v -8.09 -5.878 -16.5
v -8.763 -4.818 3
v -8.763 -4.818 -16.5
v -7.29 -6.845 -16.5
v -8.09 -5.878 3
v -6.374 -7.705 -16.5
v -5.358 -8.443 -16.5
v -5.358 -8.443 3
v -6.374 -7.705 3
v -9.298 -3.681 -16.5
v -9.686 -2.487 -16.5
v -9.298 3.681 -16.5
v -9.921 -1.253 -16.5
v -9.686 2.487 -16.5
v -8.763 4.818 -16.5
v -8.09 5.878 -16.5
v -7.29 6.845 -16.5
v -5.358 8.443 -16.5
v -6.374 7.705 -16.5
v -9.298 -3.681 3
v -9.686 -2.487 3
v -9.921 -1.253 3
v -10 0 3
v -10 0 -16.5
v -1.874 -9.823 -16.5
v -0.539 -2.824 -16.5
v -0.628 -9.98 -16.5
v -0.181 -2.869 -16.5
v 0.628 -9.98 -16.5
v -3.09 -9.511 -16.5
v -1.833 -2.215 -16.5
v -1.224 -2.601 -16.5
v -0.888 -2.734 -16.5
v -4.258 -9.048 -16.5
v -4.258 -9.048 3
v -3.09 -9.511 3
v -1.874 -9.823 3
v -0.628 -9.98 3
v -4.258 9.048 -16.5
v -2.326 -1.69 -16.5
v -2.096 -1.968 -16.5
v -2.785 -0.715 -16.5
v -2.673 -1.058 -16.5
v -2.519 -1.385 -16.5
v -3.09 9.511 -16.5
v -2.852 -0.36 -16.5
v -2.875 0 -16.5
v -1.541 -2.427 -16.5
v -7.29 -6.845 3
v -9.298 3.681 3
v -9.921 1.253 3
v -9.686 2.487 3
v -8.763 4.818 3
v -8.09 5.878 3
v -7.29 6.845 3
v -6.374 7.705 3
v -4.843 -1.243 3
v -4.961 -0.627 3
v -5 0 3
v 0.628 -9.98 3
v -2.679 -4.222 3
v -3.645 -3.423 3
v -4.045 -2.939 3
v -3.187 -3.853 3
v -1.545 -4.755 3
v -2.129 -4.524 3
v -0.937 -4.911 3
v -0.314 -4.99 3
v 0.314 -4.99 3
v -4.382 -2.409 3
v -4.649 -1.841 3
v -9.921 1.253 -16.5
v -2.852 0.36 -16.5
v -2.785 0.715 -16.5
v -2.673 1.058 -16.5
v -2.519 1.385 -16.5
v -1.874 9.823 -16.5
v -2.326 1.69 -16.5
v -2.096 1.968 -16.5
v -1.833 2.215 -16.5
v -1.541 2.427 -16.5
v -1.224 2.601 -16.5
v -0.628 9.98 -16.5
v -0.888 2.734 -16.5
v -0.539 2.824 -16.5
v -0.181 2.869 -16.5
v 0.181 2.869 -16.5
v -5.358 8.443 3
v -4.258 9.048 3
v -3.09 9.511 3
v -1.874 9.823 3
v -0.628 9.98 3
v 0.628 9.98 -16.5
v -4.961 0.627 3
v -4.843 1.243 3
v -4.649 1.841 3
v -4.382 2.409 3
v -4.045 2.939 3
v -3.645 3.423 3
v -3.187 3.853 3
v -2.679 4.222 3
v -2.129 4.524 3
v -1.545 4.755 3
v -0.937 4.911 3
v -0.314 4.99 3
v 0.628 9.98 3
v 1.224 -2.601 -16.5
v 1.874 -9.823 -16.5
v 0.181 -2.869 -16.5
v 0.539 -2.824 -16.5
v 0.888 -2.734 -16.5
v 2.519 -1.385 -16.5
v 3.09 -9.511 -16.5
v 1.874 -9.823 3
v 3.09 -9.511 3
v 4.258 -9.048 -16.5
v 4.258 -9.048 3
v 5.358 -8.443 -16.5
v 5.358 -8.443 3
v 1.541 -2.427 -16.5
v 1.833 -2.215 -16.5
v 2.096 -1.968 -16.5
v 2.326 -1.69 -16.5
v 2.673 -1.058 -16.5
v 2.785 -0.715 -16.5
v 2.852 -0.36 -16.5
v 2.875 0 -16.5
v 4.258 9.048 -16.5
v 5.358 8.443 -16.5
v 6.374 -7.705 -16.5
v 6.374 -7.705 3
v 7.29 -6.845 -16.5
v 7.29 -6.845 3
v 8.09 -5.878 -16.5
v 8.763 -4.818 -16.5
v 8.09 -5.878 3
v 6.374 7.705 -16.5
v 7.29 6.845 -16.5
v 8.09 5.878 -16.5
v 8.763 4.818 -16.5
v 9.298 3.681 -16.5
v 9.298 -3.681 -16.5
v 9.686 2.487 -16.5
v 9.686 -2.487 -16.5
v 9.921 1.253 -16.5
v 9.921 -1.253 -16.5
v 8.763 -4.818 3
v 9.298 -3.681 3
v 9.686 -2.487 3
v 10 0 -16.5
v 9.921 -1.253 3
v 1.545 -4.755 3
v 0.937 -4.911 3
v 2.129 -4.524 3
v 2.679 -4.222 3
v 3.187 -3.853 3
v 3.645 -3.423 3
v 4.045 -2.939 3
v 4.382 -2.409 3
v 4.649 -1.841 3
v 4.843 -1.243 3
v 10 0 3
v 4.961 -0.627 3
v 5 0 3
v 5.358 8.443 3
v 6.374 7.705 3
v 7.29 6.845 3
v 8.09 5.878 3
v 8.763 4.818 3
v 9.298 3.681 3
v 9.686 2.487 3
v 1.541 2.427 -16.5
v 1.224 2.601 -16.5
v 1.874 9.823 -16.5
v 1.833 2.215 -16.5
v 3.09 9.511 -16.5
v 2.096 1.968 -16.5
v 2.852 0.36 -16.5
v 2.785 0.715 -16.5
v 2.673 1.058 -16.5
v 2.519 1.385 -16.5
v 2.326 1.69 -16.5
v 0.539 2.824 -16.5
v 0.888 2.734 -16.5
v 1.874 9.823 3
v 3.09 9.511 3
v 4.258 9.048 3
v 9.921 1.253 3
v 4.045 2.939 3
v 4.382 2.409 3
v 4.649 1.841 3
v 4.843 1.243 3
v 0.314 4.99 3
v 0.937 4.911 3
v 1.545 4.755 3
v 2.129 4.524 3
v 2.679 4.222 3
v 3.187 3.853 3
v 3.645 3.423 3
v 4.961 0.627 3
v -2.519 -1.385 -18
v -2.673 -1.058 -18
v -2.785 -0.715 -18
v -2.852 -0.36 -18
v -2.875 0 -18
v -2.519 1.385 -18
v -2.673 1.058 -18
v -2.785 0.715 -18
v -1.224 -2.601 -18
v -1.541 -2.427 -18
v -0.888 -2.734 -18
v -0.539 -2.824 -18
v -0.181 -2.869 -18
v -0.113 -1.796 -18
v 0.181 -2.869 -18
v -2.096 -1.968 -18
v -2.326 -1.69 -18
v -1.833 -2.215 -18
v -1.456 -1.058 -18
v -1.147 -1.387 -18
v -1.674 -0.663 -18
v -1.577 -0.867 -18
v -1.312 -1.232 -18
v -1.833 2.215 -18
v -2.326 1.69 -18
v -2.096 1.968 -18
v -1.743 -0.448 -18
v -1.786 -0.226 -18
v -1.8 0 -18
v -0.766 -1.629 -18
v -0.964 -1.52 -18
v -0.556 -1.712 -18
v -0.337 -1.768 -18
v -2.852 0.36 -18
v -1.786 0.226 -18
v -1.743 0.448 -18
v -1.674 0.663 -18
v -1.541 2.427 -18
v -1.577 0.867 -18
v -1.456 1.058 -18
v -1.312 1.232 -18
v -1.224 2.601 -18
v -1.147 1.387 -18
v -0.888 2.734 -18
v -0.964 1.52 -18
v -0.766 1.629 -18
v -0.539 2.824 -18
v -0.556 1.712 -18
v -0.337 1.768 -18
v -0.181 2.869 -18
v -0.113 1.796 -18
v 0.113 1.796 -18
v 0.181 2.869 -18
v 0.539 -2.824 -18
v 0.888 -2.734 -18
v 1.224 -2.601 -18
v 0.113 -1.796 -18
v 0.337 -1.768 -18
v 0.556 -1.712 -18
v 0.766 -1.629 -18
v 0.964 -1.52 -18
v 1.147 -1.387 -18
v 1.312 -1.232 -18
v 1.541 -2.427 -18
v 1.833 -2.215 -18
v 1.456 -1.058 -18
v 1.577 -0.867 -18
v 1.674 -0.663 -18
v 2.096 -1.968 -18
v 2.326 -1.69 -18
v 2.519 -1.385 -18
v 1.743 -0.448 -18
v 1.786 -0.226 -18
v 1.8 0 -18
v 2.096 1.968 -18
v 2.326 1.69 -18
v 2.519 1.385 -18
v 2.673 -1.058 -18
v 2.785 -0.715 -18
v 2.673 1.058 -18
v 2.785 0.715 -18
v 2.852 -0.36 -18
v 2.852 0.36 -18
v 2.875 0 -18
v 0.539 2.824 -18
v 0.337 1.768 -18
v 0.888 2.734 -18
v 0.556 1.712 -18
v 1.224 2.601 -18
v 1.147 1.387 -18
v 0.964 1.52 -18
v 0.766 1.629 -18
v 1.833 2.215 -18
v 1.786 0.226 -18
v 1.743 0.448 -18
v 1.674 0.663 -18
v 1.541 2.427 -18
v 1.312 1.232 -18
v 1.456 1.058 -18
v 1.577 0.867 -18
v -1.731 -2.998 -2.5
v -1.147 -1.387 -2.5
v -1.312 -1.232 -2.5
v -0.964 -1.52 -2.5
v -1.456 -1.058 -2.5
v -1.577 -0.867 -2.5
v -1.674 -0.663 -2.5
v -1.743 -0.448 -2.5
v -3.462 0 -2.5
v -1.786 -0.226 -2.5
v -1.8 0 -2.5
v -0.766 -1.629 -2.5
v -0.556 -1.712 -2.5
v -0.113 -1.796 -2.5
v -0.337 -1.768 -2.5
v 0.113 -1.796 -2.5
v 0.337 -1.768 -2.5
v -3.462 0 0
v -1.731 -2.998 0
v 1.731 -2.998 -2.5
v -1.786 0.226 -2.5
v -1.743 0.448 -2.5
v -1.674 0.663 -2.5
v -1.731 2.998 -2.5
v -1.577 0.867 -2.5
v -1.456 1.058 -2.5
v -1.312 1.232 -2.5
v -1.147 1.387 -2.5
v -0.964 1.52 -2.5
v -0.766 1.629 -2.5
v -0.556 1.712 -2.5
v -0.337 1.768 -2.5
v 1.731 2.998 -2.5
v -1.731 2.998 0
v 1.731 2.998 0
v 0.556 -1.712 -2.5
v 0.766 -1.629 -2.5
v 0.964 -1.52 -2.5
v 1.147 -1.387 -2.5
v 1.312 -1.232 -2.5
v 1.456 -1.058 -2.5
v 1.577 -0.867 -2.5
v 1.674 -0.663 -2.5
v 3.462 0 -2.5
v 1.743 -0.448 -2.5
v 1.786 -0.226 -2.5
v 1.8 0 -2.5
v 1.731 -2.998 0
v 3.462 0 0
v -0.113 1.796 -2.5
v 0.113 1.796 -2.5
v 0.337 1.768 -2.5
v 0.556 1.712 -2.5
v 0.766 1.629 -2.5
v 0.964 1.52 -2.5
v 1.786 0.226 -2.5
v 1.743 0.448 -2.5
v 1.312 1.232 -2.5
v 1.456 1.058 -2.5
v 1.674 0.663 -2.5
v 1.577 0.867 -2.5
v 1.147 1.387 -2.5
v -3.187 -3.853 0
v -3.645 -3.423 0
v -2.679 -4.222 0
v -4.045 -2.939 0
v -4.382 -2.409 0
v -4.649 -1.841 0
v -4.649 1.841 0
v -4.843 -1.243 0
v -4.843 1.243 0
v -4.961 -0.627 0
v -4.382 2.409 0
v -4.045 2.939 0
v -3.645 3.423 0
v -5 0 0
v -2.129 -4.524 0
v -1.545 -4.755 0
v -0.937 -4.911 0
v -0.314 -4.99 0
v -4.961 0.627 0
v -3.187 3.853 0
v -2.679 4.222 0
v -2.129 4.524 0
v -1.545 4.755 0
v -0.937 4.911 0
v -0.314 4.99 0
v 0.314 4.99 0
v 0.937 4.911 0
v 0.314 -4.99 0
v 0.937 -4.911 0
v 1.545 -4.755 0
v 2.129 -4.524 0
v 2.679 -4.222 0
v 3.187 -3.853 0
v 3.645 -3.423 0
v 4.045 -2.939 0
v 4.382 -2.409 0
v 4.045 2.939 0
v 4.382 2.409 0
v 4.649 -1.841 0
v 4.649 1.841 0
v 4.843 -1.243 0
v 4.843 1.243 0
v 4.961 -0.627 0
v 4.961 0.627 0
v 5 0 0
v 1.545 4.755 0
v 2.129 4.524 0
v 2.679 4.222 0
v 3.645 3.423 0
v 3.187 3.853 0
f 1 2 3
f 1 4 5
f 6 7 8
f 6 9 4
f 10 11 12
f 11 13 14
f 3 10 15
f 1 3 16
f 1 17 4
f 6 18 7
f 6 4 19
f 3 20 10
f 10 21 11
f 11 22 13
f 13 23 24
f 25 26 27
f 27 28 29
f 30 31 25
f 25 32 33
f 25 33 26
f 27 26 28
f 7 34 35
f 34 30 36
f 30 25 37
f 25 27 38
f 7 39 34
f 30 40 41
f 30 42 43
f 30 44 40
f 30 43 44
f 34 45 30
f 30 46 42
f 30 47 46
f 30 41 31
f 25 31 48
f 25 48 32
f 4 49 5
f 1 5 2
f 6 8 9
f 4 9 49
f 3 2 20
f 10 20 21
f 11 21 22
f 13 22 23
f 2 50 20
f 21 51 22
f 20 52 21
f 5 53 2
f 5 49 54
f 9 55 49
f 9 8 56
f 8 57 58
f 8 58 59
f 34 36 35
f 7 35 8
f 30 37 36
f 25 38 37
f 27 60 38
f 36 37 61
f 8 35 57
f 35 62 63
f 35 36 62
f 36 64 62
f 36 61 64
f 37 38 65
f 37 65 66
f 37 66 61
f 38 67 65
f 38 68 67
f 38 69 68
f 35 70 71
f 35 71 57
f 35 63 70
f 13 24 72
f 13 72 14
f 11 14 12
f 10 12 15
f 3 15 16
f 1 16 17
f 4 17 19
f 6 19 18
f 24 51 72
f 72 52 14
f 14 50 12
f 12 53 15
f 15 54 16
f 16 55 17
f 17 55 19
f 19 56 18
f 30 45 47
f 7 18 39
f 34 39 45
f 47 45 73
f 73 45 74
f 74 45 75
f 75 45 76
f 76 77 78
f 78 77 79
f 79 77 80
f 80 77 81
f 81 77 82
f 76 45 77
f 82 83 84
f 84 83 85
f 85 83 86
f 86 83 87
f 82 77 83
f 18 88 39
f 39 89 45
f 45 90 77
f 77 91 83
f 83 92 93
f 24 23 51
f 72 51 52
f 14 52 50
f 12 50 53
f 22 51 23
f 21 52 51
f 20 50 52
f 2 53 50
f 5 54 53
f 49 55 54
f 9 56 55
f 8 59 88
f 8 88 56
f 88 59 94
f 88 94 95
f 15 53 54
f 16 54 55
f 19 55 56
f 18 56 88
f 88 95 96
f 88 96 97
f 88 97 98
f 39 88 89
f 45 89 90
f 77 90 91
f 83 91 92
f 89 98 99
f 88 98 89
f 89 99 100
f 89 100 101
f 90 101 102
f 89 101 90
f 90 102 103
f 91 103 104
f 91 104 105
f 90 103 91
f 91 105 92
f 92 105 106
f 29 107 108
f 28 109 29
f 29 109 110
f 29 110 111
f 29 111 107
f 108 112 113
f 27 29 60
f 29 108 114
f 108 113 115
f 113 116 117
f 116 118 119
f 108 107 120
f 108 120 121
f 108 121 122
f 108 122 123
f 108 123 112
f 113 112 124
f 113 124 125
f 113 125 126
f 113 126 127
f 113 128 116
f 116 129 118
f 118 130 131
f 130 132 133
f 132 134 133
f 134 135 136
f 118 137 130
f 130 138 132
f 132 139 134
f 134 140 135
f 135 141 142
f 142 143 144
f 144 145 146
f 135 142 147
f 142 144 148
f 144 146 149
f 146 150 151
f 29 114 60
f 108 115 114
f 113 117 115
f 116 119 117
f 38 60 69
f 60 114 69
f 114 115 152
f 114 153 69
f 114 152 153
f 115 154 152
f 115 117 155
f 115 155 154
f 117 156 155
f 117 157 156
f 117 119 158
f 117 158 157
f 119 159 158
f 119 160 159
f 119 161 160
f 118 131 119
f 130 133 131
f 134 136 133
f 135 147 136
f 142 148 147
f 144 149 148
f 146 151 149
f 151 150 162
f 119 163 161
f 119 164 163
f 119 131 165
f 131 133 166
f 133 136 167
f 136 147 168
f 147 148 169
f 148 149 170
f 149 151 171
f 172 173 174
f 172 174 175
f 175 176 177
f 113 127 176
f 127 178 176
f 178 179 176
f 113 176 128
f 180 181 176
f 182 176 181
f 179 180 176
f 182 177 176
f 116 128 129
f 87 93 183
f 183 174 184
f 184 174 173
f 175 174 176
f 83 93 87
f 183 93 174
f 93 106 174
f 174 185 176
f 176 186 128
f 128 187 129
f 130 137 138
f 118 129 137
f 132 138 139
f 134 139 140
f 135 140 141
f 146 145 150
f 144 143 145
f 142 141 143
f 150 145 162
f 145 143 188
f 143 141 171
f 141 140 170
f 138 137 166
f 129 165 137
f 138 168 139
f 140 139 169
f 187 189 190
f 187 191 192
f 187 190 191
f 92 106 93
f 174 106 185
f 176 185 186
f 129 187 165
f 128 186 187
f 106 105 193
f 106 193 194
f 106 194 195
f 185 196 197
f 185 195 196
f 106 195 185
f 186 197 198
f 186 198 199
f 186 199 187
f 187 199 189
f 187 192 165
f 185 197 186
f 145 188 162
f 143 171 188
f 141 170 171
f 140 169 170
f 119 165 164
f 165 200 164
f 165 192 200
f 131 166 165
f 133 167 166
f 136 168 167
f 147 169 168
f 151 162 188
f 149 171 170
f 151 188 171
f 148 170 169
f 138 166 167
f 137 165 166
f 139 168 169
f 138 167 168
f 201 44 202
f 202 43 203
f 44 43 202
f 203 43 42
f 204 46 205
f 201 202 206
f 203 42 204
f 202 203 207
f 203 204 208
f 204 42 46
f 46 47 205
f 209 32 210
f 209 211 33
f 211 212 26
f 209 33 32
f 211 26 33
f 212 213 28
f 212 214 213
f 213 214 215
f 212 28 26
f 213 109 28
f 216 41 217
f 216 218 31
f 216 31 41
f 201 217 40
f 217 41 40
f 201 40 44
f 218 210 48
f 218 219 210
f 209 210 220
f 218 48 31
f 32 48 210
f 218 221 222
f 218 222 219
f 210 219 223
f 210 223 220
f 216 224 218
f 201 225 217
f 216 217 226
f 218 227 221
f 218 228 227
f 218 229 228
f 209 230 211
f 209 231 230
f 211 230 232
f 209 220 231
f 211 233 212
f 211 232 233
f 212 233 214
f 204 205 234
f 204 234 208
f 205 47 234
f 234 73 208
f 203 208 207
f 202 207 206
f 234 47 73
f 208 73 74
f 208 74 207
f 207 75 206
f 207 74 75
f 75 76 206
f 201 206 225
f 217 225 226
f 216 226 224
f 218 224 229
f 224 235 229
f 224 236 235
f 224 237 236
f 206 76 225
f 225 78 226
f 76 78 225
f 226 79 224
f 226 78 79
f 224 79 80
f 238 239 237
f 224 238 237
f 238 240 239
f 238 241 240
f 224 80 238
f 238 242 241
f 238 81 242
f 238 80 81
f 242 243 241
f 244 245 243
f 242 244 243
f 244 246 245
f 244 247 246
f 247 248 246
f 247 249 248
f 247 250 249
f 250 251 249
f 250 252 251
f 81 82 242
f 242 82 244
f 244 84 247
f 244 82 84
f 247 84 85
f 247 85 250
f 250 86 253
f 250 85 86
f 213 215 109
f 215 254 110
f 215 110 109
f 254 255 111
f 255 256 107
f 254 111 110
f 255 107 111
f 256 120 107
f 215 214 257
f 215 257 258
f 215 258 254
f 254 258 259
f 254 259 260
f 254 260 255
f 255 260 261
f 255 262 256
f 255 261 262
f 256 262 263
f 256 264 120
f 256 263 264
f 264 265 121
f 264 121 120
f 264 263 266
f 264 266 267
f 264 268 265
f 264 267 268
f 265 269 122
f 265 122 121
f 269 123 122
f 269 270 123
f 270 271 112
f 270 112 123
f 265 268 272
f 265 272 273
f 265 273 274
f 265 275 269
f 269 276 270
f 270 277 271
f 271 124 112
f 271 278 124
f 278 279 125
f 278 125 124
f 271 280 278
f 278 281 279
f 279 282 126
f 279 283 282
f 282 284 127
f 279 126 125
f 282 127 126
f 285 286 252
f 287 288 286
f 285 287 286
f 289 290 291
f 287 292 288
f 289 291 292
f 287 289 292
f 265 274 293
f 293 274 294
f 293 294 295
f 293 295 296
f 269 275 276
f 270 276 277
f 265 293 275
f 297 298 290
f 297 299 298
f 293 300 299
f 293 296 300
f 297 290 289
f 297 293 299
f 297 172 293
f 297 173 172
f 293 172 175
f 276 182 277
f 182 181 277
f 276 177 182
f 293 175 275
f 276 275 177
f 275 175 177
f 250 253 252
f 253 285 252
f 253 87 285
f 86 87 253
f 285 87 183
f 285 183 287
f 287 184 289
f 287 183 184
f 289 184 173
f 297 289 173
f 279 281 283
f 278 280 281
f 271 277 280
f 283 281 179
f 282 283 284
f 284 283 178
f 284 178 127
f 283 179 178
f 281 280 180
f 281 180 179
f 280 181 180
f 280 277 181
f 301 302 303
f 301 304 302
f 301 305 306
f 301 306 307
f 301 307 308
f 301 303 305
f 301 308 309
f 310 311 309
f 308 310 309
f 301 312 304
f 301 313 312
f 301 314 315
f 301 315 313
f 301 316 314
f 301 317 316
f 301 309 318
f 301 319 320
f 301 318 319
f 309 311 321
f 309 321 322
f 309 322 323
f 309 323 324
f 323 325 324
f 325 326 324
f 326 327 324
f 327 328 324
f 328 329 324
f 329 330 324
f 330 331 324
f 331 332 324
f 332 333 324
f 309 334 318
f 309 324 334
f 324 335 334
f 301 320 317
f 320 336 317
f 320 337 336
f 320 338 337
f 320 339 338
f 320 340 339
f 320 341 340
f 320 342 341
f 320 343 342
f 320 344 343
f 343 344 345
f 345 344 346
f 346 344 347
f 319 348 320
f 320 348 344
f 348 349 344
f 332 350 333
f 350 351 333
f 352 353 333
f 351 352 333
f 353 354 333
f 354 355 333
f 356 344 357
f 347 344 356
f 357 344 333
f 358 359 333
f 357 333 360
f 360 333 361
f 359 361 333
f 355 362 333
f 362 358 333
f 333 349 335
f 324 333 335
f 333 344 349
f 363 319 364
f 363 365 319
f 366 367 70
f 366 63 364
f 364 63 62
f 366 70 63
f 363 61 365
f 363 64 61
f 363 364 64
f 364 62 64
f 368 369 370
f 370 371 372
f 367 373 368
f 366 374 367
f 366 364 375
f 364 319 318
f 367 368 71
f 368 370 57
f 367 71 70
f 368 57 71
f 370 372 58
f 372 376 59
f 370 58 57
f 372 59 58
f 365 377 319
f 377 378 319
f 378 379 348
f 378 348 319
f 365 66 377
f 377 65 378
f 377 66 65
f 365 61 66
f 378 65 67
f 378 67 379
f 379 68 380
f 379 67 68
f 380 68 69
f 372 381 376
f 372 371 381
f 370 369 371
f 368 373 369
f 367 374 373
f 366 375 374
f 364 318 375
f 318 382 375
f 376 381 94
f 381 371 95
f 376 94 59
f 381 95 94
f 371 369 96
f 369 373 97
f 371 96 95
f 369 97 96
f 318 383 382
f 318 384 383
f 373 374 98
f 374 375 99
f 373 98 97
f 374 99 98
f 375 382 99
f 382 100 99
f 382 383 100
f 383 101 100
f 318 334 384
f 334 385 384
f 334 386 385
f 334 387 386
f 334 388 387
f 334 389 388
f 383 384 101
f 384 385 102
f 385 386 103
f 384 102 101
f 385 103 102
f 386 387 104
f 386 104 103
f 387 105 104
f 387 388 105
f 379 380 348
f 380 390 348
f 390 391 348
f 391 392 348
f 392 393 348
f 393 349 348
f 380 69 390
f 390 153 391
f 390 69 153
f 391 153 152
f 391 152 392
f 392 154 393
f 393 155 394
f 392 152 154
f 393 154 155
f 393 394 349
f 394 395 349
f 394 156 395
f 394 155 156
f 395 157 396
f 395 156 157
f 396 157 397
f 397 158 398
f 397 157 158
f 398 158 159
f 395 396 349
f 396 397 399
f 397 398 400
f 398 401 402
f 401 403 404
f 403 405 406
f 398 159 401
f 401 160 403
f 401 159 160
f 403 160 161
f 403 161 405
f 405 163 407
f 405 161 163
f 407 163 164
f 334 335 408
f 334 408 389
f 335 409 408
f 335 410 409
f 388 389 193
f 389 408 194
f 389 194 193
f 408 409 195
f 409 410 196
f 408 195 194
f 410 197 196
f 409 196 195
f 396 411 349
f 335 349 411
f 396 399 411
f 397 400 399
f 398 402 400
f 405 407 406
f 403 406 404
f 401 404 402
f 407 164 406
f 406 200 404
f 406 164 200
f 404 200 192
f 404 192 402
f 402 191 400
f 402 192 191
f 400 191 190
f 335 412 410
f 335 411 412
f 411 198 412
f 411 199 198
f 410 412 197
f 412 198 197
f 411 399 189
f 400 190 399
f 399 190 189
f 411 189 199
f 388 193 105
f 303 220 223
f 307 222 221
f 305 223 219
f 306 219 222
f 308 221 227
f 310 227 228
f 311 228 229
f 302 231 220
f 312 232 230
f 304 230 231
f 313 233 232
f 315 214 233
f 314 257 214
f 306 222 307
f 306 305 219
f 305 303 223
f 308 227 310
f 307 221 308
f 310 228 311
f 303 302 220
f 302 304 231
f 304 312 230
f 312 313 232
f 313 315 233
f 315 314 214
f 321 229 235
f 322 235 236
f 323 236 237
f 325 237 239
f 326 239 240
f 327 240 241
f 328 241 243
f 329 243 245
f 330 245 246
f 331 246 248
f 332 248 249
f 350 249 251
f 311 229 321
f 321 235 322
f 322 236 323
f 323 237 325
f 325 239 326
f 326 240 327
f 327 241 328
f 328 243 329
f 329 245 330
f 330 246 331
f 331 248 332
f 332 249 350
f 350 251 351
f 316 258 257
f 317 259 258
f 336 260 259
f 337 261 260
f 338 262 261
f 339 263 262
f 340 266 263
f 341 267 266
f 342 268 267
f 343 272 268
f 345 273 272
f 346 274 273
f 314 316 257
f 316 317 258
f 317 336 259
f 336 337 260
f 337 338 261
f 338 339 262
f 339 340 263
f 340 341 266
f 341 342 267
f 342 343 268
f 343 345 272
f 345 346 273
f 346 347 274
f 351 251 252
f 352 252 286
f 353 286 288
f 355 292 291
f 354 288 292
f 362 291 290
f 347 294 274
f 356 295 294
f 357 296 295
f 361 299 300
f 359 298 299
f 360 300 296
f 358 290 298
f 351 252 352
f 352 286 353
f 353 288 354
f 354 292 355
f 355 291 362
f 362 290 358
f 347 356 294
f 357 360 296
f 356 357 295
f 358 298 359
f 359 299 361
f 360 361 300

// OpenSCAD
$fn = 50;

difference() {
	union() {
		translate(v = [0, 0, -16.5]) {
			cylinder(h = 19.5, r = 10.0);
		}
		#translate(v = [0, 0, -18.0]) {
			cylinder(h = 18, r = 2.875);
		}
	}
	union() {
		translate(v = [0, 0, 0]) {
			rotate(a = [0, 0, 0]) {
				difference() {
					union() {
						translate(v = [0, 0, -2.5]) {
							linear_extrude(height = 2.5) {
								polygon(points = [[3.4619999999999997, 0.0], [1.7310000000000003, 2.9981799479017264], [-1.7309999999999992, 2.9981799479017264], [-3.4619999999999997, 4.2397272186481365e-16], [-1.7310000000000014, -2.998179947901726], [1.7309999999999977, -2.9981799479017277]]);
							}
						}
					}
					union();
				}
			}
		}
		#cylinder(h = 3, r = 5.0);
		#translate(v = [0, 0, -100.0]) {
			cylinder(h = 200, r = 1.8);
		}
	}
}
